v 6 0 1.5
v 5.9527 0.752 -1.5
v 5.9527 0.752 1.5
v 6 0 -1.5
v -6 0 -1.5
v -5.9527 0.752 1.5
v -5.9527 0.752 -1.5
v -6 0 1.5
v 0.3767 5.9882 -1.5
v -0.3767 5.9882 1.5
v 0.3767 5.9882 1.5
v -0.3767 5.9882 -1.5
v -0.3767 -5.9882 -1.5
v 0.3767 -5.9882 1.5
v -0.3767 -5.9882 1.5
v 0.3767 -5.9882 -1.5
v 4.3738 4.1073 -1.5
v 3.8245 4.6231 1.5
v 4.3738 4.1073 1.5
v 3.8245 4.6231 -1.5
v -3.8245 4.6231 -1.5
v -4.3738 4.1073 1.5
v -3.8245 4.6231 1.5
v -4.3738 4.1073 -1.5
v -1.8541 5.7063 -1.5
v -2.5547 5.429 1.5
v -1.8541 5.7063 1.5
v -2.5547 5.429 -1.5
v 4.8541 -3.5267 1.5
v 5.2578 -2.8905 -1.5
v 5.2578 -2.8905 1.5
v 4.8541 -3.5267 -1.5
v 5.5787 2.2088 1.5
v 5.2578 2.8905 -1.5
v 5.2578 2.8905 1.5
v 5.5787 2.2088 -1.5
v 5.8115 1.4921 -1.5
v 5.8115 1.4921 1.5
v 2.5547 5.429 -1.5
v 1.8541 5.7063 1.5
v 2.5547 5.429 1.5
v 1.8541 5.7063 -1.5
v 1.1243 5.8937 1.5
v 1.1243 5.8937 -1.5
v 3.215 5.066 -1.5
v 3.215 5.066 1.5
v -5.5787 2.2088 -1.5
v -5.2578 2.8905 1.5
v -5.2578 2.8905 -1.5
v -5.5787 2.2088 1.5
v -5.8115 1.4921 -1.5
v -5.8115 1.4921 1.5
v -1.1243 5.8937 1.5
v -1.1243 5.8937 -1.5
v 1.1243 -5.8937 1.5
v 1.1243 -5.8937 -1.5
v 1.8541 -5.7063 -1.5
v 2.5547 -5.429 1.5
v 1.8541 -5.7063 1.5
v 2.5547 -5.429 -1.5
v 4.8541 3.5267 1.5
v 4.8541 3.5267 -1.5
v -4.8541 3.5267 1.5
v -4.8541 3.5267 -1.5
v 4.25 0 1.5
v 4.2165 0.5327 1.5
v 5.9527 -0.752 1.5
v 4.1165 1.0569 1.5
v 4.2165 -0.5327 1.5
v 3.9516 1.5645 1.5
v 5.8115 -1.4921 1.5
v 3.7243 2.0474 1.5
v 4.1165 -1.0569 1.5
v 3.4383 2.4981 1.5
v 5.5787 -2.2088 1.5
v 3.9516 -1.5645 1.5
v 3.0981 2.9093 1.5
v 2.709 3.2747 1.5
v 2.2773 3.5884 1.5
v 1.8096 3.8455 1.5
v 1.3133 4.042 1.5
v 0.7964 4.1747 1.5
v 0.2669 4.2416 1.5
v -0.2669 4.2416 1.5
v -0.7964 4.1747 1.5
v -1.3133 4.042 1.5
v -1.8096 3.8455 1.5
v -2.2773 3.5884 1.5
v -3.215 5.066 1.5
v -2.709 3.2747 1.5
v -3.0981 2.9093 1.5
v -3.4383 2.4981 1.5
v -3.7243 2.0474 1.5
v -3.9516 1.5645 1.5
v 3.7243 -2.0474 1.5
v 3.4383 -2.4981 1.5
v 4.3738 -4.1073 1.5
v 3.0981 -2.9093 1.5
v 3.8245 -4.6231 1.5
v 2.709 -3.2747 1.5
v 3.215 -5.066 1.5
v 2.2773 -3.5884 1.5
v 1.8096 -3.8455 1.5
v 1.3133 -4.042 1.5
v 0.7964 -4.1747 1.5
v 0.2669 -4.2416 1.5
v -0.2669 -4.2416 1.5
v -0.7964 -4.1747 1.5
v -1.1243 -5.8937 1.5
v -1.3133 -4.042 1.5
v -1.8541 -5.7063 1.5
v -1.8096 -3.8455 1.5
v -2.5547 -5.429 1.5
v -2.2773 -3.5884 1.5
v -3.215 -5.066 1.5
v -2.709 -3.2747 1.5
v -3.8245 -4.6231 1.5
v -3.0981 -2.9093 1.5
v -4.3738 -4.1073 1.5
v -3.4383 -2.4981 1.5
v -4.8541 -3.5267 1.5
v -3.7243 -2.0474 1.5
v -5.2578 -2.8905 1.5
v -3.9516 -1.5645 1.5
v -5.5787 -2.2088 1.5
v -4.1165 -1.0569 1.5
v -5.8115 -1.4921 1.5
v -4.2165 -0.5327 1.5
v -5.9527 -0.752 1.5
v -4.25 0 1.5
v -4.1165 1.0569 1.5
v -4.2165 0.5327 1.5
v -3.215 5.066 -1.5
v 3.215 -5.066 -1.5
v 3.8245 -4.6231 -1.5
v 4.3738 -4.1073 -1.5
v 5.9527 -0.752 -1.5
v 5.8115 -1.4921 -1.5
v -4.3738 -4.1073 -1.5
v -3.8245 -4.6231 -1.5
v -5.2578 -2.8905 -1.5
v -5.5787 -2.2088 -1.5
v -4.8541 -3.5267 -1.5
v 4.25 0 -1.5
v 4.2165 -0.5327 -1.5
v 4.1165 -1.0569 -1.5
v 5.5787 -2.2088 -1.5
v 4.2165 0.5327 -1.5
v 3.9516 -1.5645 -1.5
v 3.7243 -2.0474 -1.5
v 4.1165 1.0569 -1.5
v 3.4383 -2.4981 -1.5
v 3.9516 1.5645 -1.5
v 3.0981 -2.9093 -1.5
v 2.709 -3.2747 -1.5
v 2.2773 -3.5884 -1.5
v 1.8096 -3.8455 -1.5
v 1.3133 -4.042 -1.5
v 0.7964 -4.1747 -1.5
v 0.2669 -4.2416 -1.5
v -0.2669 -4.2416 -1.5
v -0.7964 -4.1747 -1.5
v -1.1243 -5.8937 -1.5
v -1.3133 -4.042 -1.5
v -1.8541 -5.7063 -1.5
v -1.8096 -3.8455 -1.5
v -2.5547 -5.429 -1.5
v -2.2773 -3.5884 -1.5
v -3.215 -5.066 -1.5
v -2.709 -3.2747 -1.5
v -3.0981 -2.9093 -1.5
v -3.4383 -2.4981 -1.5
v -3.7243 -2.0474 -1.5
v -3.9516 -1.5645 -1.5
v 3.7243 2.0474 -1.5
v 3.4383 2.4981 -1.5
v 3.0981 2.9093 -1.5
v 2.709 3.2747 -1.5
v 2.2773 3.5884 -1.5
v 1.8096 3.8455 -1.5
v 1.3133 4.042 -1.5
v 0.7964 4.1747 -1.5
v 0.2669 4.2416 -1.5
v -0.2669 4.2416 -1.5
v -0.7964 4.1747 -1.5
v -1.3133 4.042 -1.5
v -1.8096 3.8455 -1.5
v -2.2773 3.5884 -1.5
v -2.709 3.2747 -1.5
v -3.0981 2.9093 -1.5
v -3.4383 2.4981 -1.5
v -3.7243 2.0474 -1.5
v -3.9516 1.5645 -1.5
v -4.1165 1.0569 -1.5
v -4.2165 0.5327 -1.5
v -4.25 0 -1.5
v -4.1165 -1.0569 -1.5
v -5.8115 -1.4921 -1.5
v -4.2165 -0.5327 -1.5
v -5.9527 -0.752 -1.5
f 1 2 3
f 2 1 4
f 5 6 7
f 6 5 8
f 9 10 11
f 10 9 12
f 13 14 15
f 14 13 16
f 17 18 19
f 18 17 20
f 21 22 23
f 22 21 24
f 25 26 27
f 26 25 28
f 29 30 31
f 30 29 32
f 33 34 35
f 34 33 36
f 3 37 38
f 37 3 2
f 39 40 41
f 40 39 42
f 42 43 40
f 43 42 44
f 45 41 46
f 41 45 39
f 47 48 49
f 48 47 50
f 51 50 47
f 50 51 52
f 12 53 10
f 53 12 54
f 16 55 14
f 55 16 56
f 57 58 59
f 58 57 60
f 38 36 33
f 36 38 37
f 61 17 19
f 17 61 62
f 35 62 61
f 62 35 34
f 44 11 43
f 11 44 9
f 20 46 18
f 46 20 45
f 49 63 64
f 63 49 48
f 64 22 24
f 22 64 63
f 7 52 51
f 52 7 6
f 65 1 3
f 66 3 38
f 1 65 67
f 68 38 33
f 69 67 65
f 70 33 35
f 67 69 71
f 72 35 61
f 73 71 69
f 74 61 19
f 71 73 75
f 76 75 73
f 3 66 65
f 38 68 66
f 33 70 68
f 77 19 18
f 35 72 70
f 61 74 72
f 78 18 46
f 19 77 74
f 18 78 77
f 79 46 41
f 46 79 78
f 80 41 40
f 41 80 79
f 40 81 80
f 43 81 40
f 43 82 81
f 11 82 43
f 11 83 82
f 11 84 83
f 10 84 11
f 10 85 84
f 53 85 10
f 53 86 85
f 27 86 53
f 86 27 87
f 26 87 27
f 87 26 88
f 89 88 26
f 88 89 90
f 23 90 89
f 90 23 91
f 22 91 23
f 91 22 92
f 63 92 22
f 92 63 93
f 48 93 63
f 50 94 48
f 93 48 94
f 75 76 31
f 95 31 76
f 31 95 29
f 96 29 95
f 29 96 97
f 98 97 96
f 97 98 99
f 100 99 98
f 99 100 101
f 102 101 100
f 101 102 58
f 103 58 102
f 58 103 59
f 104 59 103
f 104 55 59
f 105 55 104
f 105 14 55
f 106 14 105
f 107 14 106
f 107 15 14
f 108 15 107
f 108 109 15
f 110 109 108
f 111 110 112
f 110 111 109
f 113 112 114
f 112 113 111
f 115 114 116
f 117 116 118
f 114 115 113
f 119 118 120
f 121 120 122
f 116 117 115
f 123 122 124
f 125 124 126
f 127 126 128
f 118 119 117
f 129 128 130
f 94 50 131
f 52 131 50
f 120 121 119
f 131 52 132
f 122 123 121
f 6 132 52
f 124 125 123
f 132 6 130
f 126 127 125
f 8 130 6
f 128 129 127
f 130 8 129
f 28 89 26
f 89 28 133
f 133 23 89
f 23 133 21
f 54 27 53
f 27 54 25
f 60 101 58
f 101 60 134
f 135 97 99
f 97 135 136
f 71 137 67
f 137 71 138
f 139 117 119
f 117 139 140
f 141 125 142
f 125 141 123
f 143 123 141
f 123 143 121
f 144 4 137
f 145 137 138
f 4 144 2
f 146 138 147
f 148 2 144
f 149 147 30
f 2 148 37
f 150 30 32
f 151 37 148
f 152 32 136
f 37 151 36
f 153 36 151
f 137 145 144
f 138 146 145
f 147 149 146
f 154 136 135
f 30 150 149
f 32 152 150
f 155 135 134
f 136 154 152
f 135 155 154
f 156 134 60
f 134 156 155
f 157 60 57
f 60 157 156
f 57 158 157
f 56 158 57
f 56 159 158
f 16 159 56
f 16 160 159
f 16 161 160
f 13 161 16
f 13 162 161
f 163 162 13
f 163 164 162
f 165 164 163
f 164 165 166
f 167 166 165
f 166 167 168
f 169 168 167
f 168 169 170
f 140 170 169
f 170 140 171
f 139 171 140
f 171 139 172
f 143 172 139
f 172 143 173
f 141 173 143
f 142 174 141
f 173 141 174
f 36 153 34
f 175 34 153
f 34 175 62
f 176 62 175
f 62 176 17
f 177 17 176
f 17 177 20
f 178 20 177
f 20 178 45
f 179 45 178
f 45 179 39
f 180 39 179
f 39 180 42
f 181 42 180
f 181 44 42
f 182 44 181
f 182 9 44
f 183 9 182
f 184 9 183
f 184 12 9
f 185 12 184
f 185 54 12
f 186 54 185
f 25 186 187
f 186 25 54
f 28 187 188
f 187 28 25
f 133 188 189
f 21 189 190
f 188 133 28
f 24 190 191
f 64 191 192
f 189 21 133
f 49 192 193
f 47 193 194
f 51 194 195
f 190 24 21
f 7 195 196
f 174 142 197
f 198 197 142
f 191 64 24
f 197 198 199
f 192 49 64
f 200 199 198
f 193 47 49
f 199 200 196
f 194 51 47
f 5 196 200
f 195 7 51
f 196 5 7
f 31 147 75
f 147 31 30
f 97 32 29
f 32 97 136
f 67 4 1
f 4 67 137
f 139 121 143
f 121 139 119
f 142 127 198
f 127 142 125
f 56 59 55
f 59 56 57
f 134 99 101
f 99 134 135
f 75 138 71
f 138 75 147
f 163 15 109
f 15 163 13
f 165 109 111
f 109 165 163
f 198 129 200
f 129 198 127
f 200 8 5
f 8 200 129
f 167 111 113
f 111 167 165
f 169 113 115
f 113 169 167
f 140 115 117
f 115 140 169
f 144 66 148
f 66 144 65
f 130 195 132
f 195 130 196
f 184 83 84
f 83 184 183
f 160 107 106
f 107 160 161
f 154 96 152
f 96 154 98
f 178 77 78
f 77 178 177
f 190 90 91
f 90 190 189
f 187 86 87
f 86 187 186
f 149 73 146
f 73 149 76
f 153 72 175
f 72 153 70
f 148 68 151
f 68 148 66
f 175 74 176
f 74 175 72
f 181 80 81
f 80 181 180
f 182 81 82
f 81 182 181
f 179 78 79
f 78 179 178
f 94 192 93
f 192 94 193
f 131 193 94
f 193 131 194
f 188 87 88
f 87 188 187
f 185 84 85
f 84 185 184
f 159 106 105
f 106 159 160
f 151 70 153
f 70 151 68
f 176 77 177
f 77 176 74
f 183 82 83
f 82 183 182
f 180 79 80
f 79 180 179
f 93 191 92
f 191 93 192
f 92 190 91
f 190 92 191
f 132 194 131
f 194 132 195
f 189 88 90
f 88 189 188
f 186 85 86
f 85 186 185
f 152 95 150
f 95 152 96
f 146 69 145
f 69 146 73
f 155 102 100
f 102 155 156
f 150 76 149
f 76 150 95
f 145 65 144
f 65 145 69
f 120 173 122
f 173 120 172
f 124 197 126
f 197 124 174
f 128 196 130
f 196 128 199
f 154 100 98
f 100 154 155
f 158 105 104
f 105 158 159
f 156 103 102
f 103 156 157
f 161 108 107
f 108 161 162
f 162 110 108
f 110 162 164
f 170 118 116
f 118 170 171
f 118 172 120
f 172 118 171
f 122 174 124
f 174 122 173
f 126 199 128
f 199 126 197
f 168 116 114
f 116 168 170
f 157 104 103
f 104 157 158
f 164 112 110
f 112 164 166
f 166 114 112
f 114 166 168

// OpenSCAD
$fn = 50;


difference() {
	union() {
		translate(v = [0, 0, -1.5000000000]) {
			cylinder(h = 3, r = 6.0000000000);
		}
	}
	union() {
		translate(v = [0, 0, -100.0000000000]) {
			cylinder(h = 200, r = 4.2500000000);
		}
	}
}
